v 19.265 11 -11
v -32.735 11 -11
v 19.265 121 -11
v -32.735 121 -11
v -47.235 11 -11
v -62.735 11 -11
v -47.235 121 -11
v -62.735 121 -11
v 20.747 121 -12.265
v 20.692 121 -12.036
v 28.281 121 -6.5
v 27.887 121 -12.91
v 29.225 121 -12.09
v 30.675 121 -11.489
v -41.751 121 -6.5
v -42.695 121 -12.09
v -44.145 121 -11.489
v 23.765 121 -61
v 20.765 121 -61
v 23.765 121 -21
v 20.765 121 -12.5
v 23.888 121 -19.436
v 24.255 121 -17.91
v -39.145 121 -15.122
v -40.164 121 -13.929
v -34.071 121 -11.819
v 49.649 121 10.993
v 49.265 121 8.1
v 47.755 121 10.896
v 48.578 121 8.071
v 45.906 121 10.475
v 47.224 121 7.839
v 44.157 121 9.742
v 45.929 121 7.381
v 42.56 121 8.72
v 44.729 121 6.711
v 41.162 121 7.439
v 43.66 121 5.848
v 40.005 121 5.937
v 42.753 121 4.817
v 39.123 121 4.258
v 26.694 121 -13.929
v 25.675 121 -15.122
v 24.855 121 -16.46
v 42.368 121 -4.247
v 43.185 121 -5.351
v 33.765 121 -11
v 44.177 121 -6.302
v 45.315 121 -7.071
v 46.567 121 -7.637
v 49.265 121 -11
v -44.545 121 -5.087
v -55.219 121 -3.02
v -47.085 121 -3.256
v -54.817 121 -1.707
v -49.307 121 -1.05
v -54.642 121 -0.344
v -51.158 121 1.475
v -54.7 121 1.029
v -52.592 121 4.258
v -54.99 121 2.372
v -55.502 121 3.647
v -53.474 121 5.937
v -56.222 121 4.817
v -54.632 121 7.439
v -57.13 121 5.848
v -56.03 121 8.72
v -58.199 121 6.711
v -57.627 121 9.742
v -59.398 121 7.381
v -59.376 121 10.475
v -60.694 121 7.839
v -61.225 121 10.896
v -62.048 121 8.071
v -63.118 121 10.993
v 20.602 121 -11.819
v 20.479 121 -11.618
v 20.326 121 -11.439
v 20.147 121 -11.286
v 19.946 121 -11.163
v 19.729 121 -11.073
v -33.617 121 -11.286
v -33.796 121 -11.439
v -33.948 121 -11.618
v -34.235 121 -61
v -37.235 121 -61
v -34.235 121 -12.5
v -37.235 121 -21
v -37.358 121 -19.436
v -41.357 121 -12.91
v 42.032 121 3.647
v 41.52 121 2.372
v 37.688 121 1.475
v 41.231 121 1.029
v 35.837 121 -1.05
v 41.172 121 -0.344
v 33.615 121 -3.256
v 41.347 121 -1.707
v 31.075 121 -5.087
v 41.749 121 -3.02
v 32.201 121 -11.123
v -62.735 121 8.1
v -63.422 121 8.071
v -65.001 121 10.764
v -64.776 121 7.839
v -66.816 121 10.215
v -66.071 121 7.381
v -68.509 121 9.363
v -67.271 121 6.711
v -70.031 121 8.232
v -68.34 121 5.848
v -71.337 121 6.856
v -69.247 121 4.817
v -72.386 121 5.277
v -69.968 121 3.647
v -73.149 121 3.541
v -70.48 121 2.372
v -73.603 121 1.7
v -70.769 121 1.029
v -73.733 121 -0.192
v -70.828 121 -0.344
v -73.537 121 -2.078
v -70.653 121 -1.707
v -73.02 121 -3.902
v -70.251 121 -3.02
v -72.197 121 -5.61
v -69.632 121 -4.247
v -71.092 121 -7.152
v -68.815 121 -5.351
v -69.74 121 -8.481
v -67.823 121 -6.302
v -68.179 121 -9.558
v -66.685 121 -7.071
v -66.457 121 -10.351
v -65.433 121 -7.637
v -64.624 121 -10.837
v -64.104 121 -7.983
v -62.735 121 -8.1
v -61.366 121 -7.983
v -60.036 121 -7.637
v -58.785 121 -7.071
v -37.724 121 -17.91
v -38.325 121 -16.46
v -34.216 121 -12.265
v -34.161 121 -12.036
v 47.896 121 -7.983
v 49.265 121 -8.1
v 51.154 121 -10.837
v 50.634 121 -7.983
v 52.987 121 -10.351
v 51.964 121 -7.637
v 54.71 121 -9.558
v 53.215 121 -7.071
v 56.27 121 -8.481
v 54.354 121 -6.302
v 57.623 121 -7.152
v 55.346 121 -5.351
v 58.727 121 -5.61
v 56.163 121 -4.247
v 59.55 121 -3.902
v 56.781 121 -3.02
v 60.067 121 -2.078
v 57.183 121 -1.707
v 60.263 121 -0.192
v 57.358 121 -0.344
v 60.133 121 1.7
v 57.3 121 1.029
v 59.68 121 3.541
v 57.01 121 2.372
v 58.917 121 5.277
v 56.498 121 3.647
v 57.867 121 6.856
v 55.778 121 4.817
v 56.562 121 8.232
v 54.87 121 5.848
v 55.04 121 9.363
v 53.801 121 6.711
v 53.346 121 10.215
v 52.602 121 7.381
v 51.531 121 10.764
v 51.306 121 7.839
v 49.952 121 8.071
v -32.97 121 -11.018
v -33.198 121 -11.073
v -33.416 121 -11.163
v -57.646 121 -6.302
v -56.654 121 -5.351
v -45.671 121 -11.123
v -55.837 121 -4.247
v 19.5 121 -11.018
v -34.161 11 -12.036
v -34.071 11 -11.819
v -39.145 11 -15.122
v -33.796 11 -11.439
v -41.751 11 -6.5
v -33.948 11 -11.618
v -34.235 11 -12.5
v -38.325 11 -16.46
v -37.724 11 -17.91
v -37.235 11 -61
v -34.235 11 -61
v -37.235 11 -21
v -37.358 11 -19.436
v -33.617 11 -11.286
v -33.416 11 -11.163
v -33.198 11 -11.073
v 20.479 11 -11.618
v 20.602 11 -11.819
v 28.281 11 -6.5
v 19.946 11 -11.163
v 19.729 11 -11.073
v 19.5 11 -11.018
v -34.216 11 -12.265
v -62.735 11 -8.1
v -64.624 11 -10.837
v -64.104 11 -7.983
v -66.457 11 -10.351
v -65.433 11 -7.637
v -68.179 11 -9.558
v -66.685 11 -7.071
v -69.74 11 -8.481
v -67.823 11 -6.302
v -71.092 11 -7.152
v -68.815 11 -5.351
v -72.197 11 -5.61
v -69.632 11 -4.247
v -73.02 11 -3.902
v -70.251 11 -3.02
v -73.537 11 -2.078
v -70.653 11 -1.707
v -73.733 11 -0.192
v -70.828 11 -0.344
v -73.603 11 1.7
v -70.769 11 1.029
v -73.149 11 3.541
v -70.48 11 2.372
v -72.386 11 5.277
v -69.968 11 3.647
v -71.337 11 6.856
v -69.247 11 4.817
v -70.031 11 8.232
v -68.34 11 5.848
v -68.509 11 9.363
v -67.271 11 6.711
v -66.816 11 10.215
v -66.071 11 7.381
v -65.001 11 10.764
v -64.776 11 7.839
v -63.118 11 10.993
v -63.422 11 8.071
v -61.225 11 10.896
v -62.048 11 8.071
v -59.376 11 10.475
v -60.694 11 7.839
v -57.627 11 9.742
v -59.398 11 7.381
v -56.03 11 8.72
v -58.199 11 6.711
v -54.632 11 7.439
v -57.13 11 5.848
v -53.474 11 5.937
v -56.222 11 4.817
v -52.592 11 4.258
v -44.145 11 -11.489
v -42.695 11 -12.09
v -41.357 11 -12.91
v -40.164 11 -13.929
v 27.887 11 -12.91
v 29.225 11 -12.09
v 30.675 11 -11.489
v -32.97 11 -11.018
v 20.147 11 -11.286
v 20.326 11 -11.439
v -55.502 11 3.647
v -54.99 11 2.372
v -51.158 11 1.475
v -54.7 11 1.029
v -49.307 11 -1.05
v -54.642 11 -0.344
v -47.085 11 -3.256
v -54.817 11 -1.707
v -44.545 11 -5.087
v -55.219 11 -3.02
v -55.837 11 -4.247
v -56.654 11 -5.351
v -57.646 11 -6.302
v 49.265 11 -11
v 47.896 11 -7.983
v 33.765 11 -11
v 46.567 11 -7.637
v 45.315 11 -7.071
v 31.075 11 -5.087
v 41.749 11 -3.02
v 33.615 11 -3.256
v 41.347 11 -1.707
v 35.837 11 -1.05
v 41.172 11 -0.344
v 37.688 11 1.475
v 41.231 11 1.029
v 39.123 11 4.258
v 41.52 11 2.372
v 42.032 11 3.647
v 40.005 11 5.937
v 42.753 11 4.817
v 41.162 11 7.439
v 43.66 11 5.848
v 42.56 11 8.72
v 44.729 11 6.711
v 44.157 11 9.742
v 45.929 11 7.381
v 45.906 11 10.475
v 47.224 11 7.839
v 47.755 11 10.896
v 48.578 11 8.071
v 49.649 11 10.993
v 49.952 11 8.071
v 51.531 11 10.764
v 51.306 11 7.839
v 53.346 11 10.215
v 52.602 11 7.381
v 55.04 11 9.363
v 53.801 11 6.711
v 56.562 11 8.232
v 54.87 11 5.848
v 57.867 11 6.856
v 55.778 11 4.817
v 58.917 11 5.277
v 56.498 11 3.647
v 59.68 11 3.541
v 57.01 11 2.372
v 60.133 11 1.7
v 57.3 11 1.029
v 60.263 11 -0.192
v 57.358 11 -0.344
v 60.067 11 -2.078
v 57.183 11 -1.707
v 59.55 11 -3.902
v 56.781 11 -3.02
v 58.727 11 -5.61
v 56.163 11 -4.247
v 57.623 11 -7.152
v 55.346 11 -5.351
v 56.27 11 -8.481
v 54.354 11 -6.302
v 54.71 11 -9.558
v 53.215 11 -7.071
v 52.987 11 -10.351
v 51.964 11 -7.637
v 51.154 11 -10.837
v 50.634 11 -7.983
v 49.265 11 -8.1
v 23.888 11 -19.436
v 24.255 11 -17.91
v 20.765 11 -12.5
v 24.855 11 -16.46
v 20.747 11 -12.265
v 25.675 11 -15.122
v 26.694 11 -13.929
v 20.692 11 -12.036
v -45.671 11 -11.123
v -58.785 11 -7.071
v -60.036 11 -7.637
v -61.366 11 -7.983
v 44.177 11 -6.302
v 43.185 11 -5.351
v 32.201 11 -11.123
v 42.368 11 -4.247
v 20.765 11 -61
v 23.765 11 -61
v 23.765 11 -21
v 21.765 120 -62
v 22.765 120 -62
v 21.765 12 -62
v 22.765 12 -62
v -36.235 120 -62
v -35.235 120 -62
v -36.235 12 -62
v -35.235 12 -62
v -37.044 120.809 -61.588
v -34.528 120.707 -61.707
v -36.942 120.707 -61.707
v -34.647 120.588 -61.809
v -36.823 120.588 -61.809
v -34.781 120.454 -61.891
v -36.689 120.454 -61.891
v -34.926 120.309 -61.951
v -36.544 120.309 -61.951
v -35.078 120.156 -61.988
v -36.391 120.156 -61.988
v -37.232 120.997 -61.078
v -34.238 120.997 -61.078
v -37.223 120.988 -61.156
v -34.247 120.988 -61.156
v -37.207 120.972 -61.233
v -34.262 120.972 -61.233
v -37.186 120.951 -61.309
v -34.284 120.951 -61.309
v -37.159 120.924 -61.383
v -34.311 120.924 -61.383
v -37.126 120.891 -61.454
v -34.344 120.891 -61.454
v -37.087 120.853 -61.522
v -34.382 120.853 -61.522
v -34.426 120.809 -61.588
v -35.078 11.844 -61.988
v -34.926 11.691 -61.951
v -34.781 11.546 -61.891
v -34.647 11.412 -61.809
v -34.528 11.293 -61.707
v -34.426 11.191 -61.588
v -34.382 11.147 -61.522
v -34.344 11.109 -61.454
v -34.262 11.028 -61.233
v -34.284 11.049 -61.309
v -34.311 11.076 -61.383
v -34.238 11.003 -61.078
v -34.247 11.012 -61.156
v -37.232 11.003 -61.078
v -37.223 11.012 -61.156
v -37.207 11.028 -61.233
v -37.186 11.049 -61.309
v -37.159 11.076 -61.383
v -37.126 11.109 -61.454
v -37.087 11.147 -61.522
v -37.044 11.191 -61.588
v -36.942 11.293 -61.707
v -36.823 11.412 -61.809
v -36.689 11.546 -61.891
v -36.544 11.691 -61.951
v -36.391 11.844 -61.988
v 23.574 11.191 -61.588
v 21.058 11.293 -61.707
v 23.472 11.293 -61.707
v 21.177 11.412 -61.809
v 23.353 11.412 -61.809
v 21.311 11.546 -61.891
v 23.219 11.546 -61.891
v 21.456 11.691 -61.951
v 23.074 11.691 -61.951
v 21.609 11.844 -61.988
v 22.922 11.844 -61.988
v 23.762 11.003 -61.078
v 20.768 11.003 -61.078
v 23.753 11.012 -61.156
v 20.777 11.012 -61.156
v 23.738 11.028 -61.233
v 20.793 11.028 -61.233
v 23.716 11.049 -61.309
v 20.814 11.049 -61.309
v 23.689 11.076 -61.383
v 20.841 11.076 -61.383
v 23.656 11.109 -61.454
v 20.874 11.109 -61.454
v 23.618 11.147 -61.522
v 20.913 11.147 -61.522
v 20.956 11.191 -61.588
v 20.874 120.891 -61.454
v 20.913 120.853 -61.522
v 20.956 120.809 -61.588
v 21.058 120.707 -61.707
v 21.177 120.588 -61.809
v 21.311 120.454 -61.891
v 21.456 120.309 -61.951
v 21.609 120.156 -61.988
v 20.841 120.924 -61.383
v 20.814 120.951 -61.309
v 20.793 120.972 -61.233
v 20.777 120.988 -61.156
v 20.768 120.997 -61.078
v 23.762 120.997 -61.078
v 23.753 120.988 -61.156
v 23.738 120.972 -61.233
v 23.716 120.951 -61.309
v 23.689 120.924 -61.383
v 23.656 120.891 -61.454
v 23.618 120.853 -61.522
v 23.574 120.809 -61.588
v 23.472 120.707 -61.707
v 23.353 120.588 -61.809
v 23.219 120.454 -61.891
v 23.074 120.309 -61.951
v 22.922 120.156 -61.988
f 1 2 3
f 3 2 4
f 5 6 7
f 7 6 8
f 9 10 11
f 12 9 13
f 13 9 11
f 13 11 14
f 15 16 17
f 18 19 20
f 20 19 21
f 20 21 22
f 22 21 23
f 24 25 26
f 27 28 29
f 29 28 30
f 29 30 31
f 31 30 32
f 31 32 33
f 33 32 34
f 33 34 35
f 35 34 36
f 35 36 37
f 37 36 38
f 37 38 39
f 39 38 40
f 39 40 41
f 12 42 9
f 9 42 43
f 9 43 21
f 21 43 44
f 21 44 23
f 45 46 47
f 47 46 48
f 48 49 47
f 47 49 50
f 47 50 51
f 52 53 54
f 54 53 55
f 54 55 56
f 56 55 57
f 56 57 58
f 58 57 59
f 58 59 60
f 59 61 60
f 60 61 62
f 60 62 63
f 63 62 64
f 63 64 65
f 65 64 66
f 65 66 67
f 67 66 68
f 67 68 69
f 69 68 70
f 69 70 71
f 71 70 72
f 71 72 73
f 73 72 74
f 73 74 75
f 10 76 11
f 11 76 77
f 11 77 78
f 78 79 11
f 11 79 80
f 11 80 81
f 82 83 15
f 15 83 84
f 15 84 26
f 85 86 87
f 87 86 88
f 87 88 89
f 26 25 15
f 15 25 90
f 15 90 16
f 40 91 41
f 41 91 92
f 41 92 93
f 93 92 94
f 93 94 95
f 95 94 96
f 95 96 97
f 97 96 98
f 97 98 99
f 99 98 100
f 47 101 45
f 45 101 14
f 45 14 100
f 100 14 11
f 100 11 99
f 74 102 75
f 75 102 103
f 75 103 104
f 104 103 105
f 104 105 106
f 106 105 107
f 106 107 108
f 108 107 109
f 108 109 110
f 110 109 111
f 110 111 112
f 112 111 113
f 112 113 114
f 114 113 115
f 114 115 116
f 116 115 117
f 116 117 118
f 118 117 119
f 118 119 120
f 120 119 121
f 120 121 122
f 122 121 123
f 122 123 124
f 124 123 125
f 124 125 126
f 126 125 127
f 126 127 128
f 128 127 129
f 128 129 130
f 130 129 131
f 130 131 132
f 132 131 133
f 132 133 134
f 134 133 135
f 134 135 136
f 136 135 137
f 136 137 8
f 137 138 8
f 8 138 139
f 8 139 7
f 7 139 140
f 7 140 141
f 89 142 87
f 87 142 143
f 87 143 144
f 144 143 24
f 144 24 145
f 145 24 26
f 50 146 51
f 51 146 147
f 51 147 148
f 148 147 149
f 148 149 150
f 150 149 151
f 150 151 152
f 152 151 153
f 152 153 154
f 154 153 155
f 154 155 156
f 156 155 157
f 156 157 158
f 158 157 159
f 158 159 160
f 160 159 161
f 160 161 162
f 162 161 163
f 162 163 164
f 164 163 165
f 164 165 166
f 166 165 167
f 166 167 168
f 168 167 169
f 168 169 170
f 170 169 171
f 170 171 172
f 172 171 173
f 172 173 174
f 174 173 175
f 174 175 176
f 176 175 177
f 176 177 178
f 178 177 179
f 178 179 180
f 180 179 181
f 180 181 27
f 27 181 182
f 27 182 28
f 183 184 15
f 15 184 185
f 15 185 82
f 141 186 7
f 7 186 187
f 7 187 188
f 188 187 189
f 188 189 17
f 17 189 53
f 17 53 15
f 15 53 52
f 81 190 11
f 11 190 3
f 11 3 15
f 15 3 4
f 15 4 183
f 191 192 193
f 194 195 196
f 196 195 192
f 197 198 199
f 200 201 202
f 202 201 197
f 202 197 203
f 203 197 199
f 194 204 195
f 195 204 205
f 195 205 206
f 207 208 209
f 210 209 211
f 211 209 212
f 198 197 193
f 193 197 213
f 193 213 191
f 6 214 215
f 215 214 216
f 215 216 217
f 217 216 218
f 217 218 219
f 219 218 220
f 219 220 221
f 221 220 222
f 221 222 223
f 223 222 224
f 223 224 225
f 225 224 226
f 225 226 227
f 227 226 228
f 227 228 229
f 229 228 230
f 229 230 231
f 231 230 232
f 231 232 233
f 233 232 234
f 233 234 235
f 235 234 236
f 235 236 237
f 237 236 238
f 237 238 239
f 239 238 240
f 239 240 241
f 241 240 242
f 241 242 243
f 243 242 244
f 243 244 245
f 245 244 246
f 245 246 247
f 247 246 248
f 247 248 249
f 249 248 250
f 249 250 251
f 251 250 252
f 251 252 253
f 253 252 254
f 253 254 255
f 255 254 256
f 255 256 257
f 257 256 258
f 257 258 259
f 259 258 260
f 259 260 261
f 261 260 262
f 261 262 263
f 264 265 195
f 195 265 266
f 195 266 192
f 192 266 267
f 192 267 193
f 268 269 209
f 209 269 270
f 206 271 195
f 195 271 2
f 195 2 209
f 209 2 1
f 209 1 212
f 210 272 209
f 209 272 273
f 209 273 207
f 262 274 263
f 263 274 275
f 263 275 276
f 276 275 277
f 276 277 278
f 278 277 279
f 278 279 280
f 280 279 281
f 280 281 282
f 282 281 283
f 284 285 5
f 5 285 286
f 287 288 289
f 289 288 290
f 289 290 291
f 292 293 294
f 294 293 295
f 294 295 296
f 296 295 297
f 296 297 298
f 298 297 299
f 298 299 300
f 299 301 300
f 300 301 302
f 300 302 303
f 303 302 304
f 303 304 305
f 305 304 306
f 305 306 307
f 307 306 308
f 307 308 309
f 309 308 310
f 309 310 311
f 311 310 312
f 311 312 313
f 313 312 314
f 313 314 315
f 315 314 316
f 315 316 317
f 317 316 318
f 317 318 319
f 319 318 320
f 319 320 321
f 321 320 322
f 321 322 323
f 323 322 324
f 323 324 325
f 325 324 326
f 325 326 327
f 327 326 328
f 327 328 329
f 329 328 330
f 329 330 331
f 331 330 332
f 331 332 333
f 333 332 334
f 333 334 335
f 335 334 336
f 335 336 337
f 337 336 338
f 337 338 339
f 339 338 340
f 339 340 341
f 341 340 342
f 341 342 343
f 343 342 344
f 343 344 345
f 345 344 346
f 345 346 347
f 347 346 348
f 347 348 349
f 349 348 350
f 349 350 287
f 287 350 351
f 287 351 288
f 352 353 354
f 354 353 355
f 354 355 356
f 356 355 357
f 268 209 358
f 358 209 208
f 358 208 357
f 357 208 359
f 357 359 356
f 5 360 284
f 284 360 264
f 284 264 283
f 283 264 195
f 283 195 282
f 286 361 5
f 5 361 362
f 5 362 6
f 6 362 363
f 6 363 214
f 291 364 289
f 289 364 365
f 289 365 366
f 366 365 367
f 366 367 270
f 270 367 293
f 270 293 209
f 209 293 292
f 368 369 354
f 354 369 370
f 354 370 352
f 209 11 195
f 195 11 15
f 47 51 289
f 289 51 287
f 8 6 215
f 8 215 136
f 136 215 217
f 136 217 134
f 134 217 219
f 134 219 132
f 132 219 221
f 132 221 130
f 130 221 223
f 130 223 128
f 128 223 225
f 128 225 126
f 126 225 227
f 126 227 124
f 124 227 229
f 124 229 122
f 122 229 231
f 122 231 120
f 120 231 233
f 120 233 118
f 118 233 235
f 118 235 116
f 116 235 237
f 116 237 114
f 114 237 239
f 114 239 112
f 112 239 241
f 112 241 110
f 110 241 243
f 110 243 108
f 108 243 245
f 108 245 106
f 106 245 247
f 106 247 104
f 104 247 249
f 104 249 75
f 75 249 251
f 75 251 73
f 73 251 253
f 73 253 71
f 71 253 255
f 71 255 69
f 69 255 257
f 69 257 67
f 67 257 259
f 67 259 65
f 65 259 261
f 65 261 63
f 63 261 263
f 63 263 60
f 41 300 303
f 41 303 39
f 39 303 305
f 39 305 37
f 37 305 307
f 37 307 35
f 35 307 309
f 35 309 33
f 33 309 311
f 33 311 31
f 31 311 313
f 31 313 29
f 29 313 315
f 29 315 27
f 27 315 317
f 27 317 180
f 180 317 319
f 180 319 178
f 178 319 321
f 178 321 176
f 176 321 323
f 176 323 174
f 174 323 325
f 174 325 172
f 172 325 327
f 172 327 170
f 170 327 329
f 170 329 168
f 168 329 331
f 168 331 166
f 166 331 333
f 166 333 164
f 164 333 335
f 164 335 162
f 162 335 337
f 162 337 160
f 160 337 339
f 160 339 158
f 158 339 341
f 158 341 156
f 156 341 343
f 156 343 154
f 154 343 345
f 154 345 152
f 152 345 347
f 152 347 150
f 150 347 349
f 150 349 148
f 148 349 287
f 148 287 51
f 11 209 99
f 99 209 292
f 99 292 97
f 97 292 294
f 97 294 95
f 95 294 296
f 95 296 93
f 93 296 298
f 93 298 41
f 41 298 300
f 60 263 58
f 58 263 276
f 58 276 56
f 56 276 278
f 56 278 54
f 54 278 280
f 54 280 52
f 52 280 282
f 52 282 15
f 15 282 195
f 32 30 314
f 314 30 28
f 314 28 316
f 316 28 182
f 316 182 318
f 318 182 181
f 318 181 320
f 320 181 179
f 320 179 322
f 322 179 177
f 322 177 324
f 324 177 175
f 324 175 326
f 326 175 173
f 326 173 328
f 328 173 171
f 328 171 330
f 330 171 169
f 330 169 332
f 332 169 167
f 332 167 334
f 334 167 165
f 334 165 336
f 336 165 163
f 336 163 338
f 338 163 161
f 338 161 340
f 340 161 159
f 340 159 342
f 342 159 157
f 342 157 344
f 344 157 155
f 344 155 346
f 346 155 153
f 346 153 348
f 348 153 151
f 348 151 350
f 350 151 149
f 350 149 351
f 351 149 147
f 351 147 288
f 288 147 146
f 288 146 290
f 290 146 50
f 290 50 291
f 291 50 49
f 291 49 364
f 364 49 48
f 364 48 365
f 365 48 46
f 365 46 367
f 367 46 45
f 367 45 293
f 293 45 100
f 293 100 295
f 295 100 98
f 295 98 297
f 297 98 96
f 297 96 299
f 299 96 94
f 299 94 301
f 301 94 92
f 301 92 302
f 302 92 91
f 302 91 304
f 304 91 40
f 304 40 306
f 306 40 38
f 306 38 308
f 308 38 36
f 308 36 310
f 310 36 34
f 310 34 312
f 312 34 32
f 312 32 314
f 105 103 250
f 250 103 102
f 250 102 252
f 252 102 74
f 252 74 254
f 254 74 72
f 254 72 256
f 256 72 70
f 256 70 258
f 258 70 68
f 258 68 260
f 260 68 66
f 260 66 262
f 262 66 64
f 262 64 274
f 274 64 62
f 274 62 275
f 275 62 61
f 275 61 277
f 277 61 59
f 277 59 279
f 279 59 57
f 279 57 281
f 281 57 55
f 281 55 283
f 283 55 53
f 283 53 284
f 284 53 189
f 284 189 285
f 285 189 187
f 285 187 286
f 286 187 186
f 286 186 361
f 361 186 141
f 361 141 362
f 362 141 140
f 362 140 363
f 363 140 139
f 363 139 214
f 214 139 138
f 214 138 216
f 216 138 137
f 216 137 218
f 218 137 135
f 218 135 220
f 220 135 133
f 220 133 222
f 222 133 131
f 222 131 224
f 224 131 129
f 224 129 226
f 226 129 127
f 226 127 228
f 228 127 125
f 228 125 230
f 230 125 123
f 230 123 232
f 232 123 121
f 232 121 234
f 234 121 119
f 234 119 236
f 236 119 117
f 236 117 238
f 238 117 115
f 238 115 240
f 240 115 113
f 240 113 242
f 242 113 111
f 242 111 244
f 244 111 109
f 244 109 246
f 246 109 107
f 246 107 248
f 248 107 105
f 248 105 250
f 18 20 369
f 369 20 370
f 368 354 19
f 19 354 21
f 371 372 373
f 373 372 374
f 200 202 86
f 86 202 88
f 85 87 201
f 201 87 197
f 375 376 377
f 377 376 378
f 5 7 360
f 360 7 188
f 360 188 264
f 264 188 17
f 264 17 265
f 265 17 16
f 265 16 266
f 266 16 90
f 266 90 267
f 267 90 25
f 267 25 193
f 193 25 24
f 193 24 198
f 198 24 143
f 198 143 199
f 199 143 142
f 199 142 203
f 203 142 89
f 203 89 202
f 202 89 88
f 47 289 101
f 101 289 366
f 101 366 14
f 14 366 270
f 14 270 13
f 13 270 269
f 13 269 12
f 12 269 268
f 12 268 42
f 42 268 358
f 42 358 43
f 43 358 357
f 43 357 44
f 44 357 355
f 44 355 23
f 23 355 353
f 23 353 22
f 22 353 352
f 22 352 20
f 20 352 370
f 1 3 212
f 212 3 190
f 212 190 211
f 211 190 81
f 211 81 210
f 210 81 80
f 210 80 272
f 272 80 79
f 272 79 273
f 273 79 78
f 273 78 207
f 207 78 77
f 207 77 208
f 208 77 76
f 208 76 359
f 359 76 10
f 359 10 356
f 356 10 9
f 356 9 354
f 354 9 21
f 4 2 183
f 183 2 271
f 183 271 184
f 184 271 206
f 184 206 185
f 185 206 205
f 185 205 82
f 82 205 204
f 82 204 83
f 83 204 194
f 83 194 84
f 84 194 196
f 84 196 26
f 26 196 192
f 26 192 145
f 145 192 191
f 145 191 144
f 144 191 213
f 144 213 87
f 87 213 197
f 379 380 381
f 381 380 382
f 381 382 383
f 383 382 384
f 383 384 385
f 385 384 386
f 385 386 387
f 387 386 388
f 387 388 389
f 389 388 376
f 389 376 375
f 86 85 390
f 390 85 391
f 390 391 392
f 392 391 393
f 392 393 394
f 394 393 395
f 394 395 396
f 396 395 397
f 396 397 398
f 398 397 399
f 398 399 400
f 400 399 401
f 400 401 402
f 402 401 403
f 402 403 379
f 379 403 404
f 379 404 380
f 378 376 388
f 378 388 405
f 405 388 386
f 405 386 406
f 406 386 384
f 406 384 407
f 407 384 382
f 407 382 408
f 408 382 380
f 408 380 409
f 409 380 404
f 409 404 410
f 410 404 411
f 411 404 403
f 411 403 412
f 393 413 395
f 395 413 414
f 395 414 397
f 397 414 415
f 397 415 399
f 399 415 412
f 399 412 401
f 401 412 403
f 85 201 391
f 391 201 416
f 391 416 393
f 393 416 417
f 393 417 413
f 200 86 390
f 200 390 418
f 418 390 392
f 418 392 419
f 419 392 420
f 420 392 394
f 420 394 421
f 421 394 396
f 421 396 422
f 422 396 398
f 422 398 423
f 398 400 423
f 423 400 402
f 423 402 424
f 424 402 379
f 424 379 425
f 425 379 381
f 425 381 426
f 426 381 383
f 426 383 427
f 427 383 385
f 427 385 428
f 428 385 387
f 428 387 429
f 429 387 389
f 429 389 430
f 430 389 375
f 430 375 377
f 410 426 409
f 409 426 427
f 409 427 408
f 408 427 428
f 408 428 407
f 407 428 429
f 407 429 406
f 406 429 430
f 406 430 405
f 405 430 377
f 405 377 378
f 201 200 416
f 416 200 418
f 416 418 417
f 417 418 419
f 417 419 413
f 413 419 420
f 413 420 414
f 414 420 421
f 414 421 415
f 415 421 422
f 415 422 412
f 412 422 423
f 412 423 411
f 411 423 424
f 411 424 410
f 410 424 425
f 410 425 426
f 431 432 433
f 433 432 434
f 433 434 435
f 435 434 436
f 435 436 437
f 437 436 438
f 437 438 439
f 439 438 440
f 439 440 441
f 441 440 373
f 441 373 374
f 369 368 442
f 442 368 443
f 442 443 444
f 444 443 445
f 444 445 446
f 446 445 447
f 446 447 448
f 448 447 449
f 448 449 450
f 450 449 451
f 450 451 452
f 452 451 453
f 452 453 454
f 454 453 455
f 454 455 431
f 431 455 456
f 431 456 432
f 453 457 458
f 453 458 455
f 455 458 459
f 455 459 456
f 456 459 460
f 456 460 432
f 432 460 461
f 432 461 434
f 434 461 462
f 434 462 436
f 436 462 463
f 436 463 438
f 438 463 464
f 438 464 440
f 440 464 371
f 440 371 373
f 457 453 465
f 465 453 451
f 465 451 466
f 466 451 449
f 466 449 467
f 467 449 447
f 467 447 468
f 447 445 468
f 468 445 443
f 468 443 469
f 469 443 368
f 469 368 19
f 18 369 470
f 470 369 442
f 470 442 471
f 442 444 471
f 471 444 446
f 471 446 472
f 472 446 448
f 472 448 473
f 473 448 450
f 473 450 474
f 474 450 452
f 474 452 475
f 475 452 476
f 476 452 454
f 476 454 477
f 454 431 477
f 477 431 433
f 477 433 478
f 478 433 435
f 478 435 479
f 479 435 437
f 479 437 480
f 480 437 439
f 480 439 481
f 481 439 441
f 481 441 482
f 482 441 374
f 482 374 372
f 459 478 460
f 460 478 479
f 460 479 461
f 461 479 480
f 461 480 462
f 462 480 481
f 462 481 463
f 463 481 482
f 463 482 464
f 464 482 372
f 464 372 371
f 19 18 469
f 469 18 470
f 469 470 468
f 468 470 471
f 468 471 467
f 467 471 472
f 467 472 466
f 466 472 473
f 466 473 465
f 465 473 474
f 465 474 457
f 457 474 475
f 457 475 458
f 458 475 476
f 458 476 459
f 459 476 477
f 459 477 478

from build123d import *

# Parameters (mm, degrees)
SKETCH1_R              = 8
BOSS_EXTRUDE1_DEPTH    = 130
FILLET1_R              = 20
SKETCH2_W              = 2
SKETCH2_H              = 130
BOSS_EXTRUDE4_DEPTH    = 30
CUT_EXTRUDE1_DEPTH     = 9
FILLET2_R              = 1
FILLET3_R              = 2
CUT_EXTRUDE2_START     = -11
CUT_EXTRUDE2_OUTLINE_W = 137
CUT_EXTRUDE2_OUTLINE_H = 54
CUT_EXTRUDE2_DEPTH     = 11
CUT_EXTRUDE3_DEPTH     = 50
SKETCH6_W              = 87.560859394
SKETCH6_H              = 110.580871242
SKETCH6_RX             = 28
SKETCH6_RY             = 6.639736886
SKETCH6_RY_2           = 5.950557319
BOSS_EXTRUDE7_DEPTH    = 1.5
SKETCH7_W              = 87.560859394
SKETCH7_H              = 1.5
CUT_EXTRUDE4_DEPTH     = 0.290435621
SKETCH8_W              = 87.560859394
SKETCH8_H              = 1.5
CUT_EXTRUDE5_DEPTH     = 0.290435621
SKETCH9_R              = 113.429913181
CUT_EXTRUDE6_DEPTH     = 135
SKETCH10_W             = 60.632055489
SKETCH10_H             = 78.176650268
BOSS_EXTRUDE8_DEPTH    = 4.5
SKETCH11_R             = 8.1
CUT_EXTRUDE7_DEPTH     = 135
SKETCH12_W             = 3
SKETCH12_H             = 110
BOSS_EXTRUDE9_DEPTH    = 51
FILLET4_R              = 10
FILLET5_R              = 1.5
FILLET7_R              = 1


# Read off the part's stored shape, not the designer's step: Cut-Extrude2
with BuildPart() as part:
    # Sketch1 → Boss-Extrude1 (new body)
    with BuildSketch(Plane(origin=(0, 0, 0), x_dir=(1, 0, 0), z_dir=(0, 1, 0))):
        with BuildLine():
            ThreePointArc((-62.734857267, 11), (-66.796876469, -10.22252415), (-55.185022832, 8))
            Line((-55.185022832, 8), (41.715308298, 8))
            ThreePointArc((41.715308298, 8), (53.327161935, -10.22252415), (49.265142733, 11))
            Line((49.265142733, 11), (-62.734857267, 11))
        make_face()
        with Locations(Location((-62.734857267, 0, 0), (0, 0, 270))):
            Circle(SKETCH1_R, mode=Mode.SUBTRACT)
        with Locations(Location((49.265142733, 0, 0), (0, 0, 270))):
            Circle(SKETCH1_R, mode=Mode.SUBTRACT)
    extrude(amount=BOSS_EXTRUDE1_DEPTH)

    # Fillet1
    fillet1_edges = [part.edges().sort_by_distance(p)[0] for p in [
        (41.715308298, 65, -8),
        (-55.185022832, 65, -8),
    ]]
    fillet(fillet1_edges, radius=FILLET1_R)

    # Sketch2 → Boss-Extrude4 (add)
    with BuildSketch(Plane(origin=(0, 0, -11), x_dir=(-1, 0, 0), z_dir=(0, 0, -1))):
        with Locations((7.734857267, 65)):
            Rectangle(SKETCH2_W, SKETCH2_H)
        with Locations((5.734857267, 65)):
            Rectangle(SKETCH2_W, SKETCH2_H)
    extrude(amount=BOSS_EXTRUDE4_DEPTH)

    # Sketch3 → Cut-Extrude1 (cut)
    with BuildSketch(Plane(origin=(0, 130, 0), x_dir=(1, 0, 0), z_dir=(0, 1, 0))):
        with BuildLine():
            Line((-34.151645411, 8), (20.681930877, 8))
            ThreePointArc((20.681930877, 8), (31.753545265, 4.655910508), (39.12271272, -4.258064516))
            ThreePointArc((39.12271272, -4.258064516), (58.425893512, -6.089387914), (49.265142733, 11))
            Line((49.265142733, 11), (-4.734857267, 11))
            Line((-4.734857267, 11), (-4.734857267, 41))
            Line((-4.734857267, 41), (-8.734857267, 41))
            Line((-8.734857267, 41), (-8.734857267, 11))
            Line((-8.734857267, 11), (-62.734857267, 11))
            ThreePointArc((-62.734857267, 11), (-71.895608046, -6.089387914), (-52.592427254, -4.258064516))
            ThreePointArc((-52.592427254, -4.258064516), (-45.223259799, 4.655910508), (-34.151645411, 8))
        make_face()
    extrude(amount=-CUT_EXTRUDE1_DEPTH, mode=Mode.SUBTRACT)

    # Fillet2
    fillet2_edges = [part.edges().sort_by_distance(p)[0] for p in [
        (-8.734857267, 60.5, -11),
        (-4.734857267, 60.5, -11),
    ]]
    fillet(fillet2_edges, radius=FILLET2_R)

    # Fillet3
    fillet3_edges = [part.edges().sort_by_distance(p)[0] for p in [
        (-4.734857267, 60.5, -41),
        (-8.734857267, 60.5, -41),
    ]]
    fillet(fillet3_edges, radius=FILLET3_R - 0.0001)  # a hair under: the kernel refuses the full size

    # Cut-Extrude2 outline → Cut-Extrude2 (cut)
    with BuildSketch(Plane.XZ.offset(CUT_EXTRUDE2_START)):
        with Locations((-6.5, -15)):
            Rectangle(CUT_EXTRUDE2_OUTLINE_W, CUT_EXTRUDE2_OUTLINE_H)
    extrude(amount=CUT_EXTRUDE2_DEPTH, mode=Mode.SUBTRACT)

    # Sketch5 → Cut-Extrude3 (cut)
    with BuildSketch(Plane(origin=(0, 0, -11), x_dir=(-1, 0, 0), z_dir=(0, 0, -1))):
        with BuildLine():
            add(Edge.make_bspline(
                [(27.082988225, 66), (27.082988225, 94), (20.443251339, 94)],
                knots=[1.570796327, 1.570796327, 1.570796327, 3.141592654, 3.141592654, 3.141592654], degree=2, weights=[1, 0.707106781, 1]))
            Line((20.443251339, 94), (20.443251339, 66))
            Line((20.443251339, 66), (27.082988225, 66))
        make_face()
        with BuildLine():
            Line((20.443251339, 66), (20.443251339, 94))
            add(Edge.make_bspline(
                [(20.443251339, 94), (13.803514453, 94), (13.803514453, 66)],
                knots=[3.141592654, 3.141592654, 3.141592654, 4.71238898, 4.71238898, 4.71238898], degree=2, weights=[1, 0.707106781, 1]))
            Line((13.803514453, 66), (20.443251339, 66))
        make_face()
        with BuildLine():
            Line((20.443251339, 66), (13.803514453, 66))
            add(Edge.make_bspline(
                [(13.803514453, 66), (13.803514453, 38), (20.443251339, 38)],
                knots=[4.71238898, 4.71238898, 4.71238898, 6.283185307, 6.283185307, 6.283185307], degree=2, weights=[1, 0.707106781, 1]))
            add(Edge.make_bspline(
                [(20.443251339, 38), (27.082988225, 38), (27.082988225, 66)],
                knots=[0, 0, 0, 1.570796327, 1.570796327, 1.570796327], degree=2, weights=[1, 0.707106781, 1]))
            Line((27.082988225, 66), (20.443251339, 66))
        make_face()
        with BuildLine():
            Line((-1.022979486, 66), (-6.973536805, 66))
            Line((-6.973536805, 66), (-12.924094124, 66))
            add(Edge.make_bspline(
                [(-12.924094124, 66), (-12.924094124, 38), (-6.973536805, 38)],
                knots=[4.71238898, 4.71238898, 4.71238898, 6.283185307, 6.283185307, 6.283185307], degree=2, weights=[1, 0.707106781, 1]))
            add(Edge.make_bspline(
                [(-6.973536805, 38), (-1.022979486, 38), (-1.022979486, 66)],
                knots=[0, 0, 0, 1.570796327, 1.570796327, 1.570796327], degree=2, weights=[1, 0.707106781, 1]))
        make_face()
        with BuildLine():
            add(Edge.make_bspline(
                [(-1.022979486, 66), (-1.022979486, 94), (-6.973536805, 94)],
                knots=[1.570796327, 1.570796327, 1.570796327, 3.141592654, 3.141592654, 3.141592654], degree=2, weights=[1, 0.707106781, 1]))
            Line((-6.973536805, 94), (-6.973536805, 66))
            Line((-6.973536805, 66), (-1.022979486, 66))
        make_face()
        with BuildLine():
            Line((-6.973536805, 66), (-6.973536805, 94))
            add(Edge.make_bspline(
                [(-6.973536805, 94), (-12.924094124, 94), (-12.924094124, 66)],
                knots=[3.141592654, 3.141592654, 3.141592654, 4.71238898, 4.71238898, 4.71238898], degree=2, weights=[1, 0.707106781, 1]))
            Line((-12.924094124, 66), (-6.973536805, 66))
        make_face()
    extrude(amount=-CUT_EXTRUDE3_DEPTH, mode=Mode.SUBTRACT)

    # Sketch6 → Boss-Extrude7 (add)
    with BuildSketch(Plane.XY.offset(-8)):
        with Locations((-6.734857267, 66)):
            Rectangle(SKETCH6_W, SKETCH6_H)
        with Locations(Location((-20.443251339, 66), (0, 0, -90))):
            Ellipse(SKETCH6_RX, SKETCH6_RY, mode=Mode.SUBTRACT)
        with Locations(Location((6.973536805, 66), (0, 0, -90))):
            Ellipse(SKETCH6_RX, SKETCH6_RY_2, mode=Mode.SUBTRACT)
    extrude(amount=BOSS_EXTRUDE7_DEPTH)

    # Sketch7 → Cut-Extrude4 (cut)
    with BuildSketch(Plane(origin=(0, 121.290435621, 0), x_dir=(1, 0, 0), z_dir=(0, 1, 0))):
        with Locations((-6.734857267, 7.25)):
            Rectangle(SKETCH7_W, SKETCH7_H)
    extrude(amount=-CUT_EXTRUDE4_DEPTH, mode=Mode.SUBTRACT)

    # Sketch8 → Cut-Extrude5 (cut)
    with BuildSketch(Plane.XZ.offset(-10.709564379)):
        with Locations((-6.734857267, -7.25)):
            Rectangle(SKETCH8_W, SKETCH8_H)
    extrude(amount=-CUT_EXTRUDE5_DEPTH, mode=Mode.SUBTRACT)

    # Sketch9 → Cut-Extrude6 (cut)
    with BuildSketch(Plane(origin=(0, 0, -11), x_dir=(-1, 0, 0), z_dir=(0, 0, -1))):
        with Locations((15.997363152, 101.645153737)):
            Circle(SKETCH9_R)
    extrude(amount=CUT_EXTRUDE6_DEPTH, mode=Mode.SUBTRACT)

    # Sketch10 → Boss-Extrude8 (add)
    with BuildSketch(Plane(origin=(0, 0, -11), x_dir=(-1, 0, 0), z_dir=(0, 0, -1))):
        with Locations((5.573817907, 65.992517727)):
            Rectangle(SKETCH10_W, SKETCH10_H)
    extrude(amount=-BOSS_EXTRUDE8_DEPTH)

    # Sketch11 → Cut-Extrude7 (cut)
    with BuildSketch(Plane.XZ.offset(-11)):
        with Locations(Location((-62.734857267, 0, 0), (0, 0, 270))):
            Circle(SKETCH11_R)
        with Locations(Location((49.265142733, 0, 0), (0, 0, 270))):
            Circle(SKETCH11_R)
    extrude(amount=-CUT_EXTRUDE7_DEPTH, mode=Mode.SUBTRACT)

    # Sketch12 → Boss-Extrude9 (add)
    with BuildSketch(Plane(origin=(0, 0, -11), x_dir=(-1, 0, 0), z_dir=(0, 0, -1))):
        with Locations((-22.265142733, 66)):
            Rectangle(SKETCH12_W, SKETCH12_H)
        with Locations((35.734857267, 66)):
            Rectangle(SKETCH12_W, SKETCH12_H)
    extrude(amount=BOSS_EXTRUDE9_DEPTH)

    # Fillet4
    fillet4_edges = [part.edges().sort_by_distance(p)[0] for p in [
        (23.765142733, 66, -11),
        (-37.234857267, 66, -11),
    ]]
    fillet(fillet4_edges, radius=FILLET4_R)

    # Fillet5
    fillet5_edges = [part.edges().sort_by_distance(p)[0] for p in [
        (20.765142733, 66, -11),
        (-34.234857267, 66, -11),
    ]]
    fillet(fillet5_edges, radius=FILLET5_R)

    # Fillet7
    fillet7_edges = [part.edges().sort_by_distance(p)[0] for p in [
        (23.765142733, 66, -62),
        (22.265142733, 11, -62),
        (20.765142733, 66, -62),
        (22.265142733, 121, -62),
        (-37.234857267, 66, -62),
        (-35.734857267, 121, -62),
        (-34.234857267, 66, -62),
        (-35.734857267, 11, -62),
    ]]
    fillet(fillet7_edges, radius=FILLET7_R)


solid = part.part
